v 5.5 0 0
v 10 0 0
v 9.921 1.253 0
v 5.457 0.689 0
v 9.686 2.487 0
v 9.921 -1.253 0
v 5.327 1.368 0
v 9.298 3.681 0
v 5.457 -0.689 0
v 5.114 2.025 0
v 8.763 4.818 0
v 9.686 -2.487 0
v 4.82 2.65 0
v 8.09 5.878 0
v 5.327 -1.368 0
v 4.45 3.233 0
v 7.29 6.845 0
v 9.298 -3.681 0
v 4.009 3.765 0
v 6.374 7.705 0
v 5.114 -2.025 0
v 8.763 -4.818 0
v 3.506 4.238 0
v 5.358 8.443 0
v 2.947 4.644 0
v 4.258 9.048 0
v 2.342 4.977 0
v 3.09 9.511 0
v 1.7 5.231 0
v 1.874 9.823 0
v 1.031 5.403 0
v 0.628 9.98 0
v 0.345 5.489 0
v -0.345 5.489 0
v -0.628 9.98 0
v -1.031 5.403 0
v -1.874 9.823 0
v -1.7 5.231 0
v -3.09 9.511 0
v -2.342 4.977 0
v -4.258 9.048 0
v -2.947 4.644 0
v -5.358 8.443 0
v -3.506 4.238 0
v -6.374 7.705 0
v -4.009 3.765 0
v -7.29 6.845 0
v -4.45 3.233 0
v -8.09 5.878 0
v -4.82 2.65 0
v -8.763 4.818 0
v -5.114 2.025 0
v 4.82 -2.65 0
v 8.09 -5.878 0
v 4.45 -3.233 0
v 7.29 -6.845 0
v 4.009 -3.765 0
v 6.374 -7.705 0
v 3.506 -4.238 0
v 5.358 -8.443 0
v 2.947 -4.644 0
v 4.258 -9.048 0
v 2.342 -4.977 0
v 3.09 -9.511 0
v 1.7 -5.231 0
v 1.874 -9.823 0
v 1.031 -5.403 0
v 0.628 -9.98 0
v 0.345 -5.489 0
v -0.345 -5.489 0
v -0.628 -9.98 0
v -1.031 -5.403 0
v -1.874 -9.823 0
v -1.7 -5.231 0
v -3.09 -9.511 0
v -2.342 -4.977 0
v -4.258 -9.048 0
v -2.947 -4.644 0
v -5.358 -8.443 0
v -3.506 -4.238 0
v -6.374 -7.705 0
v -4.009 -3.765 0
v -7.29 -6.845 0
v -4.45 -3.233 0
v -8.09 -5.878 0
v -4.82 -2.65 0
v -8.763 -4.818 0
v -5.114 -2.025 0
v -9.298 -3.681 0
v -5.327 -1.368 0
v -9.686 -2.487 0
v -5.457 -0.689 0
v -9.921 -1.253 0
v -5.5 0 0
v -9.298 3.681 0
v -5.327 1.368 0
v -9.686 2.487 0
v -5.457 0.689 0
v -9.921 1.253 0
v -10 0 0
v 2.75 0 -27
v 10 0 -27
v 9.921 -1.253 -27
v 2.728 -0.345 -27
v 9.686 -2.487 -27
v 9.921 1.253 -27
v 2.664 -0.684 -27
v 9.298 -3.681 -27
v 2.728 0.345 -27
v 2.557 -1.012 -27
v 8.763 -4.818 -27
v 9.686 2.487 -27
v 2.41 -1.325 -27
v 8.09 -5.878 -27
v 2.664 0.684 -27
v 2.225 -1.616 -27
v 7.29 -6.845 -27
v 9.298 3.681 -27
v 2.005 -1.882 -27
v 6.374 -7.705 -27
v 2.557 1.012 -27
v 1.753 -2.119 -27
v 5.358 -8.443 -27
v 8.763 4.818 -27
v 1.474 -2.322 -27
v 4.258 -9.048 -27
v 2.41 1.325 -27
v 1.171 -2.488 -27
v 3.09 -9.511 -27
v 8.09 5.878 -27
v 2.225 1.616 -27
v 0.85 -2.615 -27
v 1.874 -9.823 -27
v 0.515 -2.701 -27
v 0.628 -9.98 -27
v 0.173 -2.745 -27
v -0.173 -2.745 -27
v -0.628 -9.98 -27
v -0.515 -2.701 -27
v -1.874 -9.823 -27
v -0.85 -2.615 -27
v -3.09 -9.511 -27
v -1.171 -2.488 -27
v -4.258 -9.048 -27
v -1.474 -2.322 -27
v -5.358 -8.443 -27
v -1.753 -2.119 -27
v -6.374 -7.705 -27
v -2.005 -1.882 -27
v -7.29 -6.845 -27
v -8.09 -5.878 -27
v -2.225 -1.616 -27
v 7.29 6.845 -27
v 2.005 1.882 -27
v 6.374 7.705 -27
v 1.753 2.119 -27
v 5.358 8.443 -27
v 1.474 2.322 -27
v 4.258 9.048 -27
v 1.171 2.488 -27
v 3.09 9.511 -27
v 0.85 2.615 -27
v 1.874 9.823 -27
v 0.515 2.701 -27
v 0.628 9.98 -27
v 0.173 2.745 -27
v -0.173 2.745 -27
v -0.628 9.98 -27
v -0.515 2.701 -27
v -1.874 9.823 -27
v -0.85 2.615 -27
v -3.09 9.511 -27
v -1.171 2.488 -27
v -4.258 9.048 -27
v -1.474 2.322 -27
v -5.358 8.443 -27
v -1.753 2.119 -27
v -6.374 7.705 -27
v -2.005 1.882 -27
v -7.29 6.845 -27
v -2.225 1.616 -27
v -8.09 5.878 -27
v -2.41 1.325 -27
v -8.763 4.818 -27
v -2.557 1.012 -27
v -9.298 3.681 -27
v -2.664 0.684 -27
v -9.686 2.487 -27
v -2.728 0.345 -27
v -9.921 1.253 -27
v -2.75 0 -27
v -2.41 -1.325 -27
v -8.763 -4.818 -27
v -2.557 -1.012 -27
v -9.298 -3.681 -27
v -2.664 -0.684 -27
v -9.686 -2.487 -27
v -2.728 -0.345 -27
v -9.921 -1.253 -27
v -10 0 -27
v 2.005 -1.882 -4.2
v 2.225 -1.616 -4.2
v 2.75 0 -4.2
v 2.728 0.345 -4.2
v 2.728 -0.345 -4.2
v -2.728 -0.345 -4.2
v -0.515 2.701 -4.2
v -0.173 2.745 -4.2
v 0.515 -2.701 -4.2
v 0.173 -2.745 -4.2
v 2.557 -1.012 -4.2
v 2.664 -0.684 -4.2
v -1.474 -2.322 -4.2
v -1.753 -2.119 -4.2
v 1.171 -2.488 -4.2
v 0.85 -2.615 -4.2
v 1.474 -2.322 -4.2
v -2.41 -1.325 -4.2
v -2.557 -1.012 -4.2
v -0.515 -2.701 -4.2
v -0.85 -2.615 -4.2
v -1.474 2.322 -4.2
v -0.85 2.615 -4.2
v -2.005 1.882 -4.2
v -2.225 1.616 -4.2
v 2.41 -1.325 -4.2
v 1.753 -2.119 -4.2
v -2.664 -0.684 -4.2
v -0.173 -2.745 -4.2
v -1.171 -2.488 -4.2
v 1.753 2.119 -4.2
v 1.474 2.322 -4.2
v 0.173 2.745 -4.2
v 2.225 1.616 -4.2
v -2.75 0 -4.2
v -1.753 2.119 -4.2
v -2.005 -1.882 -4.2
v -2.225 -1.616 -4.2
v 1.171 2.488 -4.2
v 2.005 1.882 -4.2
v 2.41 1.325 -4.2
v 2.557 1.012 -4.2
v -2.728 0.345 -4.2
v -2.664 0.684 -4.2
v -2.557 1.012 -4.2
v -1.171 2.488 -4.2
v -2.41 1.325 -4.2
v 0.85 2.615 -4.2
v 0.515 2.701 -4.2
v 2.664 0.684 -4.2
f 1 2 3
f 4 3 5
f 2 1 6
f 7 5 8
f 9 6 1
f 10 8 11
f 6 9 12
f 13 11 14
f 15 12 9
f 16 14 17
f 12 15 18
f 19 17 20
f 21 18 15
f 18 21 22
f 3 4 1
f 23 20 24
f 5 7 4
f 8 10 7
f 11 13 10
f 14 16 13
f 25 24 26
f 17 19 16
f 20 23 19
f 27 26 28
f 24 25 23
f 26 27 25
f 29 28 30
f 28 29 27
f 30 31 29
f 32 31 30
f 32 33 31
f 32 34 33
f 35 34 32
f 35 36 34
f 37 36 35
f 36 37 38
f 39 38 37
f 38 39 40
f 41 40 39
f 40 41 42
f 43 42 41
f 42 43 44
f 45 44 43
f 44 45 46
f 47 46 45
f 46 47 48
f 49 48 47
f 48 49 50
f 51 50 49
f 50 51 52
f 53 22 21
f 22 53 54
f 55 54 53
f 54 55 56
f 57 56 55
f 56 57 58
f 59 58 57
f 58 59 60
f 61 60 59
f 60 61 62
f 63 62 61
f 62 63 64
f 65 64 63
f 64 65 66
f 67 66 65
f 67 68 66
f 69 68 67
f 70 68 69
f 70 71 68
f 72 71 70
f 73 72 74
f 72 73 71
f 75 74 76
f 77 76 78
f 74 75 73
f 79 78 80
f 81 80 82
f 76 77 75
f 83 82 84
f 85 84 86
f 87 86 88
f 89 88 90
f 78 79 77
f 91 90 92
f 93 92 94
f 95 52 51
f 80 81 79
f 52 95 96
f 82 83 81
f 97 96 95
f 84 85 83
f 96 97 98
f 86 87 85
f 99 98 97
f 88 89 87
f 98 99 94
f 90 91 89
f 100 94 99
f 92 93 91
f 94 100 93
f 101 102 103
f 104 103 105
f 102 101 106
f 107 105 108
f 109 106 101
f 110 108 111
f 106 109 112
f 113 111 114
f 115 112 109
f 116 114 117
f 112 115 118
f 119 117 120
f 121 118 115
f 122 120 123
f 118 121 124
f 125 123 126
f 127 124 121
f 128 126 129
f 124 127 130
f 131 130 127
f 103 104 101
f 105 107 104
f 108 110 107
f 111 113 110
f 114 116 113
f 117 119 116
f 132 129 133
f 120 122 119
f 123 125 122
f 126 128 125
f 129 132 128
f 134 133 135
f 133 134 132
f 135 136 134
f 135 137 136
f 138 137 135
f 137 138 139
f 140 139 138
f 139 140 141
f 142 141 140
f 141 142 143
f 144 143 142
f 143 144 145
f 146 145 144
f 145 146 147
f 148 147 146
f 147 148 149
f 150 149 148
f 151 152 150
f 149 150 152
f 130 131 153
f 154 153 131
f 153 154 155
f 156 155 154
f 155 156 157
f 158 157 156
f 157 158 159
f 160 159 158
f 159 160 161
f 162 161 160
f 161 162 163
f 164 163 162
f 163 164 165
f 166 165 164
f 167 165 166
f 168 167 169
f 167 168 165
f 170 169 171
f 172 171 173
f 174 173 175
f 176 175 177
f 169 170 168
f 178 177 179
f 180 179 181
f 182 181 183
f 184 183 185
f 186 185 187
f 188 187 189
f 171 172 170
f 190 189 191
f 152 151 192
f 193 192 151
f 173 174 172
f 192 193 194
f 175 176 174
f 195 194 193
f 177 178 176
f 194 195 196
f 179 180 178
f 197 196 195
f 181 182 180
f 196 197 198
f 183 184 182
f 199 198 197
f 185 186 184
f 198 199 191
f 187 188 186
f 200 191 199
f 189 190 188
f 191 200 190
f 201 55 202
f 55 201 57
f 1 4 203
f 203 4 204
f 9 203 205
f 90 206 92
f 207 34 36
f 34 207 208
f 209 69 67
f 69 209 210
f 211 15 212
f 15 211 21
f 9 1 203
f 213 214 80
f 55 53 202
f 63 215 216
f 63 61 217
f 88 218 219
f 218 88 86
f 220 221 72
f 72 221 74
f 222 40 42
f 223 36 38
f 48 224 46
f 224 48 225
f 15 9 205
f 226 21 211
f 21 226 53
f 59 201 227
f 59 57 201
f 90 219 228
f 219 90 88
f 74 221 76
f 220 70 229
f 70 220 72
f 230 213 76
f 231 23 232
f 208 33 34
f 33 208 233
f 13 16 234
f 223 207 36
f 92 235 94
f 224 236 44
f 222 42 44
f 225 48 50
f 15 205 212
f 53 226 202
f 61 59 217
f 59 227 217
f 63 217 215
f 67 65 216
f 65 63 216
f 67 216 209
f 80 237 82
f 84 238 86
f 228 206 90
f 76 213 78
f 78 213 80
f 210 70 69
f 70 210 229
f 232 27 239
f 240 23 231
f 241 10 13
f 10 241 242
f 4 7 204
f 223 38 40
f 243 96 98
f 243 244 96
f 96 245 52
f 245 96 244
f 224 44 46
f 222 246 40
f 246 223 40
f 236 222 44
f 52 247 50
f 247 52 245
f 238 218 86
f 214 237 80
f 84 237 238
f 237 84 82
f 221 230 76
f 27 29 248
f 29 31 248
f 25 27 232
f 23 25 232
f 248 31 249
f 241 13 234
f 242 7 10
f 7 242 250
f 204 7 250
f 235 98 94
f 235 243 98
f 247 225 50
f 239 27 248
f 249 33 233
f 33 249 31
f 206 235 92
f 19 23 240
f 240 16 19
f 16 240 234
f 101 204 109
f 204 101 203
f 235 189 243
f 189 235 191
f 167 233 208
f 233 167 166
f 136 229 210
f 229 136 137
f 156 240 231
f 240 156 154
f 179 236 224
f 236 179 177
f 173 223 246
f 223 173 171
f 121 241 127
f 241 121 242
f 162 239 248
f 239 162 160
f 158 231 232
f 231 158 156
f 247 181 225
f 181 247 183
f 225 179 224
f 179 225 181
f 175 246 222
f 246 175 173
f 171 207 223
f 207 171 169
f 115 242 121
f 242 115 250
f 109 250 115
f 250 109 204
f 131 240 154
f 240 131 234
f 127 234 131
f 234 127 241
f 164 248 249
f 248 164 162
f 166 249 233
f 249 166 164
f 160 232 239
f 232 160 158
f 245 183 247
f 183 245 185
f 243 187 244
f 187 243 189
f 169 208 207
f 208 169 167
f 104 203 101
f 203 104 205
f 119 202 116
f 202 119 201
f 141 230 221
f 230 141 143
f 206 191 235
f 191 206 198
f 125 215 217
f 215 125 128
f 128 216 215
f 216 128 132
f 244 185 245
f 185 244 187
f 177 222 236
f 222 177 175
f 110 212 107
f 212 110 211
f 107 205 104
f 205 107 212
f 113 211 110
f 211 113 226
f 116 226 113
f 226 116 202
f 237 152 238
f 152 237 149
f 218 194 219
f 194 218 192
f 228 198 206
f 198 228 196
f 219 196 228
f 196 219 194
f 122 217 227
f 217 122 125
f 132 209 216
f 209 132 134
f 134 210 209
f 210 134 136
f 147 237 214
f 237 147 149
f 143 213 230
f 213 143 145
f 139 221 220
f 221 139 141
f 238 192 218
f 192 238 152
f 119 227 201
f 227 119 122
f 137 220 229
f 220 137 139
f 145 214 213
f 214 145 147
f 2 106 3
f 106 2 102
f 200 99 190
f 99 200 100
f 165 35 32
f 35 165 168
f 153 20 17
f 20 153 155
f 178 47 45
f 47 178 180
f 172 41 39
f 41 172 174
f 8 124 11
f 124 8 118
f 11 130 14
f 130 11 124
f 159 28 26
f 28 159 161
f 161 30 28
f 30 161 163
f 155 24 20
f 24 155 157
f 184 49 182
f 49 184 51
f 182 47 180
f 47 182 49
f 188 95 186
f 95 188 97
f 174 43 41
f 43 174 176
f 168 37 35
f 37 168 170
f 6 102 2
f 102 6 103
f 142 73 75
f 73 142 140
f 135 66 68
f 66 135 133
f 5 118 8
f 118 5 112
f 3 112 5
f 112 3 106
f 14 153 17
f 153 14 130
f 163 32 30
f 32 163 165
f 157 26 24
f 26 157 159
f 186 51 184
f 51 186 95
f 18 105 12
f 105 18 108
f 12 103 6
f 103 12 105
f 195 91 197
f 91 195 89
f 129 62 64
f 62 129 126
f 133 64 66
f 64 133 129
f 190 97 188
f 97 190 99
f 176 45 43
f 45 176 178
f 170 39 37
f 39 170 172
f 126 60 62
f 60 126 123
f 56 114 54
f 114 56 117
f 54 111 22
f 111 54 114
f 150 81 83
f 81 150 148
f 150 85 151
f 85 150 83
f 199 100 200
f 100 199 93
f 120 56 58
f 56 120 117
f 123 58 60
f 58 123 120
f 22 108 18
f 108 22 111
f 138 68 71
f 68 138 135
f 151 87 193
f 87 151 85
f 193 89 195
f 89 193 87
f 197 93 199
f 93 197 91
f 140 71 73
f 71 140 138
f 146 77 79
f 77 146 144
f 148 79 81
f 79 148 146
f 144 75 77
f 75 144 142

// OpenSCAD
$fn = 50;


difference() {
	union() {
		translate(v = [0, 0, -27.0000000000]) {
			cylinder(h = 27, r = 10.0000000000);
		}
		cylinder(h = 0, r = 19.0000000000);
	}
	union() {
		translate(v = [0, 0, 0]) {
			rotate(a = [0, 0, 0]) {
				difference() {
					union() {
						#translate(v = [0, 0, -27.0000000000]) {
							cylinder(h = 27, r = 2.2500000000);
						}
						#translate(v = [0, 0, -4.2000000000]) {
							cylinder(h = 4.2000000000, r = 10.0000000000, r1 = 2.7500000000, r2 = 5.5000000000);
						}
						#translate(v = [0, 0, -27.0000000000]) {
							cylinder(h = 27, r = 2.7500000000);
						}
						#translate(v = [0, 0, -27.0000000000]) {
							cylinder(h = 27, r = 2.2500000000);
						}
					}
					union();
				}
			}
		}
	}
}
